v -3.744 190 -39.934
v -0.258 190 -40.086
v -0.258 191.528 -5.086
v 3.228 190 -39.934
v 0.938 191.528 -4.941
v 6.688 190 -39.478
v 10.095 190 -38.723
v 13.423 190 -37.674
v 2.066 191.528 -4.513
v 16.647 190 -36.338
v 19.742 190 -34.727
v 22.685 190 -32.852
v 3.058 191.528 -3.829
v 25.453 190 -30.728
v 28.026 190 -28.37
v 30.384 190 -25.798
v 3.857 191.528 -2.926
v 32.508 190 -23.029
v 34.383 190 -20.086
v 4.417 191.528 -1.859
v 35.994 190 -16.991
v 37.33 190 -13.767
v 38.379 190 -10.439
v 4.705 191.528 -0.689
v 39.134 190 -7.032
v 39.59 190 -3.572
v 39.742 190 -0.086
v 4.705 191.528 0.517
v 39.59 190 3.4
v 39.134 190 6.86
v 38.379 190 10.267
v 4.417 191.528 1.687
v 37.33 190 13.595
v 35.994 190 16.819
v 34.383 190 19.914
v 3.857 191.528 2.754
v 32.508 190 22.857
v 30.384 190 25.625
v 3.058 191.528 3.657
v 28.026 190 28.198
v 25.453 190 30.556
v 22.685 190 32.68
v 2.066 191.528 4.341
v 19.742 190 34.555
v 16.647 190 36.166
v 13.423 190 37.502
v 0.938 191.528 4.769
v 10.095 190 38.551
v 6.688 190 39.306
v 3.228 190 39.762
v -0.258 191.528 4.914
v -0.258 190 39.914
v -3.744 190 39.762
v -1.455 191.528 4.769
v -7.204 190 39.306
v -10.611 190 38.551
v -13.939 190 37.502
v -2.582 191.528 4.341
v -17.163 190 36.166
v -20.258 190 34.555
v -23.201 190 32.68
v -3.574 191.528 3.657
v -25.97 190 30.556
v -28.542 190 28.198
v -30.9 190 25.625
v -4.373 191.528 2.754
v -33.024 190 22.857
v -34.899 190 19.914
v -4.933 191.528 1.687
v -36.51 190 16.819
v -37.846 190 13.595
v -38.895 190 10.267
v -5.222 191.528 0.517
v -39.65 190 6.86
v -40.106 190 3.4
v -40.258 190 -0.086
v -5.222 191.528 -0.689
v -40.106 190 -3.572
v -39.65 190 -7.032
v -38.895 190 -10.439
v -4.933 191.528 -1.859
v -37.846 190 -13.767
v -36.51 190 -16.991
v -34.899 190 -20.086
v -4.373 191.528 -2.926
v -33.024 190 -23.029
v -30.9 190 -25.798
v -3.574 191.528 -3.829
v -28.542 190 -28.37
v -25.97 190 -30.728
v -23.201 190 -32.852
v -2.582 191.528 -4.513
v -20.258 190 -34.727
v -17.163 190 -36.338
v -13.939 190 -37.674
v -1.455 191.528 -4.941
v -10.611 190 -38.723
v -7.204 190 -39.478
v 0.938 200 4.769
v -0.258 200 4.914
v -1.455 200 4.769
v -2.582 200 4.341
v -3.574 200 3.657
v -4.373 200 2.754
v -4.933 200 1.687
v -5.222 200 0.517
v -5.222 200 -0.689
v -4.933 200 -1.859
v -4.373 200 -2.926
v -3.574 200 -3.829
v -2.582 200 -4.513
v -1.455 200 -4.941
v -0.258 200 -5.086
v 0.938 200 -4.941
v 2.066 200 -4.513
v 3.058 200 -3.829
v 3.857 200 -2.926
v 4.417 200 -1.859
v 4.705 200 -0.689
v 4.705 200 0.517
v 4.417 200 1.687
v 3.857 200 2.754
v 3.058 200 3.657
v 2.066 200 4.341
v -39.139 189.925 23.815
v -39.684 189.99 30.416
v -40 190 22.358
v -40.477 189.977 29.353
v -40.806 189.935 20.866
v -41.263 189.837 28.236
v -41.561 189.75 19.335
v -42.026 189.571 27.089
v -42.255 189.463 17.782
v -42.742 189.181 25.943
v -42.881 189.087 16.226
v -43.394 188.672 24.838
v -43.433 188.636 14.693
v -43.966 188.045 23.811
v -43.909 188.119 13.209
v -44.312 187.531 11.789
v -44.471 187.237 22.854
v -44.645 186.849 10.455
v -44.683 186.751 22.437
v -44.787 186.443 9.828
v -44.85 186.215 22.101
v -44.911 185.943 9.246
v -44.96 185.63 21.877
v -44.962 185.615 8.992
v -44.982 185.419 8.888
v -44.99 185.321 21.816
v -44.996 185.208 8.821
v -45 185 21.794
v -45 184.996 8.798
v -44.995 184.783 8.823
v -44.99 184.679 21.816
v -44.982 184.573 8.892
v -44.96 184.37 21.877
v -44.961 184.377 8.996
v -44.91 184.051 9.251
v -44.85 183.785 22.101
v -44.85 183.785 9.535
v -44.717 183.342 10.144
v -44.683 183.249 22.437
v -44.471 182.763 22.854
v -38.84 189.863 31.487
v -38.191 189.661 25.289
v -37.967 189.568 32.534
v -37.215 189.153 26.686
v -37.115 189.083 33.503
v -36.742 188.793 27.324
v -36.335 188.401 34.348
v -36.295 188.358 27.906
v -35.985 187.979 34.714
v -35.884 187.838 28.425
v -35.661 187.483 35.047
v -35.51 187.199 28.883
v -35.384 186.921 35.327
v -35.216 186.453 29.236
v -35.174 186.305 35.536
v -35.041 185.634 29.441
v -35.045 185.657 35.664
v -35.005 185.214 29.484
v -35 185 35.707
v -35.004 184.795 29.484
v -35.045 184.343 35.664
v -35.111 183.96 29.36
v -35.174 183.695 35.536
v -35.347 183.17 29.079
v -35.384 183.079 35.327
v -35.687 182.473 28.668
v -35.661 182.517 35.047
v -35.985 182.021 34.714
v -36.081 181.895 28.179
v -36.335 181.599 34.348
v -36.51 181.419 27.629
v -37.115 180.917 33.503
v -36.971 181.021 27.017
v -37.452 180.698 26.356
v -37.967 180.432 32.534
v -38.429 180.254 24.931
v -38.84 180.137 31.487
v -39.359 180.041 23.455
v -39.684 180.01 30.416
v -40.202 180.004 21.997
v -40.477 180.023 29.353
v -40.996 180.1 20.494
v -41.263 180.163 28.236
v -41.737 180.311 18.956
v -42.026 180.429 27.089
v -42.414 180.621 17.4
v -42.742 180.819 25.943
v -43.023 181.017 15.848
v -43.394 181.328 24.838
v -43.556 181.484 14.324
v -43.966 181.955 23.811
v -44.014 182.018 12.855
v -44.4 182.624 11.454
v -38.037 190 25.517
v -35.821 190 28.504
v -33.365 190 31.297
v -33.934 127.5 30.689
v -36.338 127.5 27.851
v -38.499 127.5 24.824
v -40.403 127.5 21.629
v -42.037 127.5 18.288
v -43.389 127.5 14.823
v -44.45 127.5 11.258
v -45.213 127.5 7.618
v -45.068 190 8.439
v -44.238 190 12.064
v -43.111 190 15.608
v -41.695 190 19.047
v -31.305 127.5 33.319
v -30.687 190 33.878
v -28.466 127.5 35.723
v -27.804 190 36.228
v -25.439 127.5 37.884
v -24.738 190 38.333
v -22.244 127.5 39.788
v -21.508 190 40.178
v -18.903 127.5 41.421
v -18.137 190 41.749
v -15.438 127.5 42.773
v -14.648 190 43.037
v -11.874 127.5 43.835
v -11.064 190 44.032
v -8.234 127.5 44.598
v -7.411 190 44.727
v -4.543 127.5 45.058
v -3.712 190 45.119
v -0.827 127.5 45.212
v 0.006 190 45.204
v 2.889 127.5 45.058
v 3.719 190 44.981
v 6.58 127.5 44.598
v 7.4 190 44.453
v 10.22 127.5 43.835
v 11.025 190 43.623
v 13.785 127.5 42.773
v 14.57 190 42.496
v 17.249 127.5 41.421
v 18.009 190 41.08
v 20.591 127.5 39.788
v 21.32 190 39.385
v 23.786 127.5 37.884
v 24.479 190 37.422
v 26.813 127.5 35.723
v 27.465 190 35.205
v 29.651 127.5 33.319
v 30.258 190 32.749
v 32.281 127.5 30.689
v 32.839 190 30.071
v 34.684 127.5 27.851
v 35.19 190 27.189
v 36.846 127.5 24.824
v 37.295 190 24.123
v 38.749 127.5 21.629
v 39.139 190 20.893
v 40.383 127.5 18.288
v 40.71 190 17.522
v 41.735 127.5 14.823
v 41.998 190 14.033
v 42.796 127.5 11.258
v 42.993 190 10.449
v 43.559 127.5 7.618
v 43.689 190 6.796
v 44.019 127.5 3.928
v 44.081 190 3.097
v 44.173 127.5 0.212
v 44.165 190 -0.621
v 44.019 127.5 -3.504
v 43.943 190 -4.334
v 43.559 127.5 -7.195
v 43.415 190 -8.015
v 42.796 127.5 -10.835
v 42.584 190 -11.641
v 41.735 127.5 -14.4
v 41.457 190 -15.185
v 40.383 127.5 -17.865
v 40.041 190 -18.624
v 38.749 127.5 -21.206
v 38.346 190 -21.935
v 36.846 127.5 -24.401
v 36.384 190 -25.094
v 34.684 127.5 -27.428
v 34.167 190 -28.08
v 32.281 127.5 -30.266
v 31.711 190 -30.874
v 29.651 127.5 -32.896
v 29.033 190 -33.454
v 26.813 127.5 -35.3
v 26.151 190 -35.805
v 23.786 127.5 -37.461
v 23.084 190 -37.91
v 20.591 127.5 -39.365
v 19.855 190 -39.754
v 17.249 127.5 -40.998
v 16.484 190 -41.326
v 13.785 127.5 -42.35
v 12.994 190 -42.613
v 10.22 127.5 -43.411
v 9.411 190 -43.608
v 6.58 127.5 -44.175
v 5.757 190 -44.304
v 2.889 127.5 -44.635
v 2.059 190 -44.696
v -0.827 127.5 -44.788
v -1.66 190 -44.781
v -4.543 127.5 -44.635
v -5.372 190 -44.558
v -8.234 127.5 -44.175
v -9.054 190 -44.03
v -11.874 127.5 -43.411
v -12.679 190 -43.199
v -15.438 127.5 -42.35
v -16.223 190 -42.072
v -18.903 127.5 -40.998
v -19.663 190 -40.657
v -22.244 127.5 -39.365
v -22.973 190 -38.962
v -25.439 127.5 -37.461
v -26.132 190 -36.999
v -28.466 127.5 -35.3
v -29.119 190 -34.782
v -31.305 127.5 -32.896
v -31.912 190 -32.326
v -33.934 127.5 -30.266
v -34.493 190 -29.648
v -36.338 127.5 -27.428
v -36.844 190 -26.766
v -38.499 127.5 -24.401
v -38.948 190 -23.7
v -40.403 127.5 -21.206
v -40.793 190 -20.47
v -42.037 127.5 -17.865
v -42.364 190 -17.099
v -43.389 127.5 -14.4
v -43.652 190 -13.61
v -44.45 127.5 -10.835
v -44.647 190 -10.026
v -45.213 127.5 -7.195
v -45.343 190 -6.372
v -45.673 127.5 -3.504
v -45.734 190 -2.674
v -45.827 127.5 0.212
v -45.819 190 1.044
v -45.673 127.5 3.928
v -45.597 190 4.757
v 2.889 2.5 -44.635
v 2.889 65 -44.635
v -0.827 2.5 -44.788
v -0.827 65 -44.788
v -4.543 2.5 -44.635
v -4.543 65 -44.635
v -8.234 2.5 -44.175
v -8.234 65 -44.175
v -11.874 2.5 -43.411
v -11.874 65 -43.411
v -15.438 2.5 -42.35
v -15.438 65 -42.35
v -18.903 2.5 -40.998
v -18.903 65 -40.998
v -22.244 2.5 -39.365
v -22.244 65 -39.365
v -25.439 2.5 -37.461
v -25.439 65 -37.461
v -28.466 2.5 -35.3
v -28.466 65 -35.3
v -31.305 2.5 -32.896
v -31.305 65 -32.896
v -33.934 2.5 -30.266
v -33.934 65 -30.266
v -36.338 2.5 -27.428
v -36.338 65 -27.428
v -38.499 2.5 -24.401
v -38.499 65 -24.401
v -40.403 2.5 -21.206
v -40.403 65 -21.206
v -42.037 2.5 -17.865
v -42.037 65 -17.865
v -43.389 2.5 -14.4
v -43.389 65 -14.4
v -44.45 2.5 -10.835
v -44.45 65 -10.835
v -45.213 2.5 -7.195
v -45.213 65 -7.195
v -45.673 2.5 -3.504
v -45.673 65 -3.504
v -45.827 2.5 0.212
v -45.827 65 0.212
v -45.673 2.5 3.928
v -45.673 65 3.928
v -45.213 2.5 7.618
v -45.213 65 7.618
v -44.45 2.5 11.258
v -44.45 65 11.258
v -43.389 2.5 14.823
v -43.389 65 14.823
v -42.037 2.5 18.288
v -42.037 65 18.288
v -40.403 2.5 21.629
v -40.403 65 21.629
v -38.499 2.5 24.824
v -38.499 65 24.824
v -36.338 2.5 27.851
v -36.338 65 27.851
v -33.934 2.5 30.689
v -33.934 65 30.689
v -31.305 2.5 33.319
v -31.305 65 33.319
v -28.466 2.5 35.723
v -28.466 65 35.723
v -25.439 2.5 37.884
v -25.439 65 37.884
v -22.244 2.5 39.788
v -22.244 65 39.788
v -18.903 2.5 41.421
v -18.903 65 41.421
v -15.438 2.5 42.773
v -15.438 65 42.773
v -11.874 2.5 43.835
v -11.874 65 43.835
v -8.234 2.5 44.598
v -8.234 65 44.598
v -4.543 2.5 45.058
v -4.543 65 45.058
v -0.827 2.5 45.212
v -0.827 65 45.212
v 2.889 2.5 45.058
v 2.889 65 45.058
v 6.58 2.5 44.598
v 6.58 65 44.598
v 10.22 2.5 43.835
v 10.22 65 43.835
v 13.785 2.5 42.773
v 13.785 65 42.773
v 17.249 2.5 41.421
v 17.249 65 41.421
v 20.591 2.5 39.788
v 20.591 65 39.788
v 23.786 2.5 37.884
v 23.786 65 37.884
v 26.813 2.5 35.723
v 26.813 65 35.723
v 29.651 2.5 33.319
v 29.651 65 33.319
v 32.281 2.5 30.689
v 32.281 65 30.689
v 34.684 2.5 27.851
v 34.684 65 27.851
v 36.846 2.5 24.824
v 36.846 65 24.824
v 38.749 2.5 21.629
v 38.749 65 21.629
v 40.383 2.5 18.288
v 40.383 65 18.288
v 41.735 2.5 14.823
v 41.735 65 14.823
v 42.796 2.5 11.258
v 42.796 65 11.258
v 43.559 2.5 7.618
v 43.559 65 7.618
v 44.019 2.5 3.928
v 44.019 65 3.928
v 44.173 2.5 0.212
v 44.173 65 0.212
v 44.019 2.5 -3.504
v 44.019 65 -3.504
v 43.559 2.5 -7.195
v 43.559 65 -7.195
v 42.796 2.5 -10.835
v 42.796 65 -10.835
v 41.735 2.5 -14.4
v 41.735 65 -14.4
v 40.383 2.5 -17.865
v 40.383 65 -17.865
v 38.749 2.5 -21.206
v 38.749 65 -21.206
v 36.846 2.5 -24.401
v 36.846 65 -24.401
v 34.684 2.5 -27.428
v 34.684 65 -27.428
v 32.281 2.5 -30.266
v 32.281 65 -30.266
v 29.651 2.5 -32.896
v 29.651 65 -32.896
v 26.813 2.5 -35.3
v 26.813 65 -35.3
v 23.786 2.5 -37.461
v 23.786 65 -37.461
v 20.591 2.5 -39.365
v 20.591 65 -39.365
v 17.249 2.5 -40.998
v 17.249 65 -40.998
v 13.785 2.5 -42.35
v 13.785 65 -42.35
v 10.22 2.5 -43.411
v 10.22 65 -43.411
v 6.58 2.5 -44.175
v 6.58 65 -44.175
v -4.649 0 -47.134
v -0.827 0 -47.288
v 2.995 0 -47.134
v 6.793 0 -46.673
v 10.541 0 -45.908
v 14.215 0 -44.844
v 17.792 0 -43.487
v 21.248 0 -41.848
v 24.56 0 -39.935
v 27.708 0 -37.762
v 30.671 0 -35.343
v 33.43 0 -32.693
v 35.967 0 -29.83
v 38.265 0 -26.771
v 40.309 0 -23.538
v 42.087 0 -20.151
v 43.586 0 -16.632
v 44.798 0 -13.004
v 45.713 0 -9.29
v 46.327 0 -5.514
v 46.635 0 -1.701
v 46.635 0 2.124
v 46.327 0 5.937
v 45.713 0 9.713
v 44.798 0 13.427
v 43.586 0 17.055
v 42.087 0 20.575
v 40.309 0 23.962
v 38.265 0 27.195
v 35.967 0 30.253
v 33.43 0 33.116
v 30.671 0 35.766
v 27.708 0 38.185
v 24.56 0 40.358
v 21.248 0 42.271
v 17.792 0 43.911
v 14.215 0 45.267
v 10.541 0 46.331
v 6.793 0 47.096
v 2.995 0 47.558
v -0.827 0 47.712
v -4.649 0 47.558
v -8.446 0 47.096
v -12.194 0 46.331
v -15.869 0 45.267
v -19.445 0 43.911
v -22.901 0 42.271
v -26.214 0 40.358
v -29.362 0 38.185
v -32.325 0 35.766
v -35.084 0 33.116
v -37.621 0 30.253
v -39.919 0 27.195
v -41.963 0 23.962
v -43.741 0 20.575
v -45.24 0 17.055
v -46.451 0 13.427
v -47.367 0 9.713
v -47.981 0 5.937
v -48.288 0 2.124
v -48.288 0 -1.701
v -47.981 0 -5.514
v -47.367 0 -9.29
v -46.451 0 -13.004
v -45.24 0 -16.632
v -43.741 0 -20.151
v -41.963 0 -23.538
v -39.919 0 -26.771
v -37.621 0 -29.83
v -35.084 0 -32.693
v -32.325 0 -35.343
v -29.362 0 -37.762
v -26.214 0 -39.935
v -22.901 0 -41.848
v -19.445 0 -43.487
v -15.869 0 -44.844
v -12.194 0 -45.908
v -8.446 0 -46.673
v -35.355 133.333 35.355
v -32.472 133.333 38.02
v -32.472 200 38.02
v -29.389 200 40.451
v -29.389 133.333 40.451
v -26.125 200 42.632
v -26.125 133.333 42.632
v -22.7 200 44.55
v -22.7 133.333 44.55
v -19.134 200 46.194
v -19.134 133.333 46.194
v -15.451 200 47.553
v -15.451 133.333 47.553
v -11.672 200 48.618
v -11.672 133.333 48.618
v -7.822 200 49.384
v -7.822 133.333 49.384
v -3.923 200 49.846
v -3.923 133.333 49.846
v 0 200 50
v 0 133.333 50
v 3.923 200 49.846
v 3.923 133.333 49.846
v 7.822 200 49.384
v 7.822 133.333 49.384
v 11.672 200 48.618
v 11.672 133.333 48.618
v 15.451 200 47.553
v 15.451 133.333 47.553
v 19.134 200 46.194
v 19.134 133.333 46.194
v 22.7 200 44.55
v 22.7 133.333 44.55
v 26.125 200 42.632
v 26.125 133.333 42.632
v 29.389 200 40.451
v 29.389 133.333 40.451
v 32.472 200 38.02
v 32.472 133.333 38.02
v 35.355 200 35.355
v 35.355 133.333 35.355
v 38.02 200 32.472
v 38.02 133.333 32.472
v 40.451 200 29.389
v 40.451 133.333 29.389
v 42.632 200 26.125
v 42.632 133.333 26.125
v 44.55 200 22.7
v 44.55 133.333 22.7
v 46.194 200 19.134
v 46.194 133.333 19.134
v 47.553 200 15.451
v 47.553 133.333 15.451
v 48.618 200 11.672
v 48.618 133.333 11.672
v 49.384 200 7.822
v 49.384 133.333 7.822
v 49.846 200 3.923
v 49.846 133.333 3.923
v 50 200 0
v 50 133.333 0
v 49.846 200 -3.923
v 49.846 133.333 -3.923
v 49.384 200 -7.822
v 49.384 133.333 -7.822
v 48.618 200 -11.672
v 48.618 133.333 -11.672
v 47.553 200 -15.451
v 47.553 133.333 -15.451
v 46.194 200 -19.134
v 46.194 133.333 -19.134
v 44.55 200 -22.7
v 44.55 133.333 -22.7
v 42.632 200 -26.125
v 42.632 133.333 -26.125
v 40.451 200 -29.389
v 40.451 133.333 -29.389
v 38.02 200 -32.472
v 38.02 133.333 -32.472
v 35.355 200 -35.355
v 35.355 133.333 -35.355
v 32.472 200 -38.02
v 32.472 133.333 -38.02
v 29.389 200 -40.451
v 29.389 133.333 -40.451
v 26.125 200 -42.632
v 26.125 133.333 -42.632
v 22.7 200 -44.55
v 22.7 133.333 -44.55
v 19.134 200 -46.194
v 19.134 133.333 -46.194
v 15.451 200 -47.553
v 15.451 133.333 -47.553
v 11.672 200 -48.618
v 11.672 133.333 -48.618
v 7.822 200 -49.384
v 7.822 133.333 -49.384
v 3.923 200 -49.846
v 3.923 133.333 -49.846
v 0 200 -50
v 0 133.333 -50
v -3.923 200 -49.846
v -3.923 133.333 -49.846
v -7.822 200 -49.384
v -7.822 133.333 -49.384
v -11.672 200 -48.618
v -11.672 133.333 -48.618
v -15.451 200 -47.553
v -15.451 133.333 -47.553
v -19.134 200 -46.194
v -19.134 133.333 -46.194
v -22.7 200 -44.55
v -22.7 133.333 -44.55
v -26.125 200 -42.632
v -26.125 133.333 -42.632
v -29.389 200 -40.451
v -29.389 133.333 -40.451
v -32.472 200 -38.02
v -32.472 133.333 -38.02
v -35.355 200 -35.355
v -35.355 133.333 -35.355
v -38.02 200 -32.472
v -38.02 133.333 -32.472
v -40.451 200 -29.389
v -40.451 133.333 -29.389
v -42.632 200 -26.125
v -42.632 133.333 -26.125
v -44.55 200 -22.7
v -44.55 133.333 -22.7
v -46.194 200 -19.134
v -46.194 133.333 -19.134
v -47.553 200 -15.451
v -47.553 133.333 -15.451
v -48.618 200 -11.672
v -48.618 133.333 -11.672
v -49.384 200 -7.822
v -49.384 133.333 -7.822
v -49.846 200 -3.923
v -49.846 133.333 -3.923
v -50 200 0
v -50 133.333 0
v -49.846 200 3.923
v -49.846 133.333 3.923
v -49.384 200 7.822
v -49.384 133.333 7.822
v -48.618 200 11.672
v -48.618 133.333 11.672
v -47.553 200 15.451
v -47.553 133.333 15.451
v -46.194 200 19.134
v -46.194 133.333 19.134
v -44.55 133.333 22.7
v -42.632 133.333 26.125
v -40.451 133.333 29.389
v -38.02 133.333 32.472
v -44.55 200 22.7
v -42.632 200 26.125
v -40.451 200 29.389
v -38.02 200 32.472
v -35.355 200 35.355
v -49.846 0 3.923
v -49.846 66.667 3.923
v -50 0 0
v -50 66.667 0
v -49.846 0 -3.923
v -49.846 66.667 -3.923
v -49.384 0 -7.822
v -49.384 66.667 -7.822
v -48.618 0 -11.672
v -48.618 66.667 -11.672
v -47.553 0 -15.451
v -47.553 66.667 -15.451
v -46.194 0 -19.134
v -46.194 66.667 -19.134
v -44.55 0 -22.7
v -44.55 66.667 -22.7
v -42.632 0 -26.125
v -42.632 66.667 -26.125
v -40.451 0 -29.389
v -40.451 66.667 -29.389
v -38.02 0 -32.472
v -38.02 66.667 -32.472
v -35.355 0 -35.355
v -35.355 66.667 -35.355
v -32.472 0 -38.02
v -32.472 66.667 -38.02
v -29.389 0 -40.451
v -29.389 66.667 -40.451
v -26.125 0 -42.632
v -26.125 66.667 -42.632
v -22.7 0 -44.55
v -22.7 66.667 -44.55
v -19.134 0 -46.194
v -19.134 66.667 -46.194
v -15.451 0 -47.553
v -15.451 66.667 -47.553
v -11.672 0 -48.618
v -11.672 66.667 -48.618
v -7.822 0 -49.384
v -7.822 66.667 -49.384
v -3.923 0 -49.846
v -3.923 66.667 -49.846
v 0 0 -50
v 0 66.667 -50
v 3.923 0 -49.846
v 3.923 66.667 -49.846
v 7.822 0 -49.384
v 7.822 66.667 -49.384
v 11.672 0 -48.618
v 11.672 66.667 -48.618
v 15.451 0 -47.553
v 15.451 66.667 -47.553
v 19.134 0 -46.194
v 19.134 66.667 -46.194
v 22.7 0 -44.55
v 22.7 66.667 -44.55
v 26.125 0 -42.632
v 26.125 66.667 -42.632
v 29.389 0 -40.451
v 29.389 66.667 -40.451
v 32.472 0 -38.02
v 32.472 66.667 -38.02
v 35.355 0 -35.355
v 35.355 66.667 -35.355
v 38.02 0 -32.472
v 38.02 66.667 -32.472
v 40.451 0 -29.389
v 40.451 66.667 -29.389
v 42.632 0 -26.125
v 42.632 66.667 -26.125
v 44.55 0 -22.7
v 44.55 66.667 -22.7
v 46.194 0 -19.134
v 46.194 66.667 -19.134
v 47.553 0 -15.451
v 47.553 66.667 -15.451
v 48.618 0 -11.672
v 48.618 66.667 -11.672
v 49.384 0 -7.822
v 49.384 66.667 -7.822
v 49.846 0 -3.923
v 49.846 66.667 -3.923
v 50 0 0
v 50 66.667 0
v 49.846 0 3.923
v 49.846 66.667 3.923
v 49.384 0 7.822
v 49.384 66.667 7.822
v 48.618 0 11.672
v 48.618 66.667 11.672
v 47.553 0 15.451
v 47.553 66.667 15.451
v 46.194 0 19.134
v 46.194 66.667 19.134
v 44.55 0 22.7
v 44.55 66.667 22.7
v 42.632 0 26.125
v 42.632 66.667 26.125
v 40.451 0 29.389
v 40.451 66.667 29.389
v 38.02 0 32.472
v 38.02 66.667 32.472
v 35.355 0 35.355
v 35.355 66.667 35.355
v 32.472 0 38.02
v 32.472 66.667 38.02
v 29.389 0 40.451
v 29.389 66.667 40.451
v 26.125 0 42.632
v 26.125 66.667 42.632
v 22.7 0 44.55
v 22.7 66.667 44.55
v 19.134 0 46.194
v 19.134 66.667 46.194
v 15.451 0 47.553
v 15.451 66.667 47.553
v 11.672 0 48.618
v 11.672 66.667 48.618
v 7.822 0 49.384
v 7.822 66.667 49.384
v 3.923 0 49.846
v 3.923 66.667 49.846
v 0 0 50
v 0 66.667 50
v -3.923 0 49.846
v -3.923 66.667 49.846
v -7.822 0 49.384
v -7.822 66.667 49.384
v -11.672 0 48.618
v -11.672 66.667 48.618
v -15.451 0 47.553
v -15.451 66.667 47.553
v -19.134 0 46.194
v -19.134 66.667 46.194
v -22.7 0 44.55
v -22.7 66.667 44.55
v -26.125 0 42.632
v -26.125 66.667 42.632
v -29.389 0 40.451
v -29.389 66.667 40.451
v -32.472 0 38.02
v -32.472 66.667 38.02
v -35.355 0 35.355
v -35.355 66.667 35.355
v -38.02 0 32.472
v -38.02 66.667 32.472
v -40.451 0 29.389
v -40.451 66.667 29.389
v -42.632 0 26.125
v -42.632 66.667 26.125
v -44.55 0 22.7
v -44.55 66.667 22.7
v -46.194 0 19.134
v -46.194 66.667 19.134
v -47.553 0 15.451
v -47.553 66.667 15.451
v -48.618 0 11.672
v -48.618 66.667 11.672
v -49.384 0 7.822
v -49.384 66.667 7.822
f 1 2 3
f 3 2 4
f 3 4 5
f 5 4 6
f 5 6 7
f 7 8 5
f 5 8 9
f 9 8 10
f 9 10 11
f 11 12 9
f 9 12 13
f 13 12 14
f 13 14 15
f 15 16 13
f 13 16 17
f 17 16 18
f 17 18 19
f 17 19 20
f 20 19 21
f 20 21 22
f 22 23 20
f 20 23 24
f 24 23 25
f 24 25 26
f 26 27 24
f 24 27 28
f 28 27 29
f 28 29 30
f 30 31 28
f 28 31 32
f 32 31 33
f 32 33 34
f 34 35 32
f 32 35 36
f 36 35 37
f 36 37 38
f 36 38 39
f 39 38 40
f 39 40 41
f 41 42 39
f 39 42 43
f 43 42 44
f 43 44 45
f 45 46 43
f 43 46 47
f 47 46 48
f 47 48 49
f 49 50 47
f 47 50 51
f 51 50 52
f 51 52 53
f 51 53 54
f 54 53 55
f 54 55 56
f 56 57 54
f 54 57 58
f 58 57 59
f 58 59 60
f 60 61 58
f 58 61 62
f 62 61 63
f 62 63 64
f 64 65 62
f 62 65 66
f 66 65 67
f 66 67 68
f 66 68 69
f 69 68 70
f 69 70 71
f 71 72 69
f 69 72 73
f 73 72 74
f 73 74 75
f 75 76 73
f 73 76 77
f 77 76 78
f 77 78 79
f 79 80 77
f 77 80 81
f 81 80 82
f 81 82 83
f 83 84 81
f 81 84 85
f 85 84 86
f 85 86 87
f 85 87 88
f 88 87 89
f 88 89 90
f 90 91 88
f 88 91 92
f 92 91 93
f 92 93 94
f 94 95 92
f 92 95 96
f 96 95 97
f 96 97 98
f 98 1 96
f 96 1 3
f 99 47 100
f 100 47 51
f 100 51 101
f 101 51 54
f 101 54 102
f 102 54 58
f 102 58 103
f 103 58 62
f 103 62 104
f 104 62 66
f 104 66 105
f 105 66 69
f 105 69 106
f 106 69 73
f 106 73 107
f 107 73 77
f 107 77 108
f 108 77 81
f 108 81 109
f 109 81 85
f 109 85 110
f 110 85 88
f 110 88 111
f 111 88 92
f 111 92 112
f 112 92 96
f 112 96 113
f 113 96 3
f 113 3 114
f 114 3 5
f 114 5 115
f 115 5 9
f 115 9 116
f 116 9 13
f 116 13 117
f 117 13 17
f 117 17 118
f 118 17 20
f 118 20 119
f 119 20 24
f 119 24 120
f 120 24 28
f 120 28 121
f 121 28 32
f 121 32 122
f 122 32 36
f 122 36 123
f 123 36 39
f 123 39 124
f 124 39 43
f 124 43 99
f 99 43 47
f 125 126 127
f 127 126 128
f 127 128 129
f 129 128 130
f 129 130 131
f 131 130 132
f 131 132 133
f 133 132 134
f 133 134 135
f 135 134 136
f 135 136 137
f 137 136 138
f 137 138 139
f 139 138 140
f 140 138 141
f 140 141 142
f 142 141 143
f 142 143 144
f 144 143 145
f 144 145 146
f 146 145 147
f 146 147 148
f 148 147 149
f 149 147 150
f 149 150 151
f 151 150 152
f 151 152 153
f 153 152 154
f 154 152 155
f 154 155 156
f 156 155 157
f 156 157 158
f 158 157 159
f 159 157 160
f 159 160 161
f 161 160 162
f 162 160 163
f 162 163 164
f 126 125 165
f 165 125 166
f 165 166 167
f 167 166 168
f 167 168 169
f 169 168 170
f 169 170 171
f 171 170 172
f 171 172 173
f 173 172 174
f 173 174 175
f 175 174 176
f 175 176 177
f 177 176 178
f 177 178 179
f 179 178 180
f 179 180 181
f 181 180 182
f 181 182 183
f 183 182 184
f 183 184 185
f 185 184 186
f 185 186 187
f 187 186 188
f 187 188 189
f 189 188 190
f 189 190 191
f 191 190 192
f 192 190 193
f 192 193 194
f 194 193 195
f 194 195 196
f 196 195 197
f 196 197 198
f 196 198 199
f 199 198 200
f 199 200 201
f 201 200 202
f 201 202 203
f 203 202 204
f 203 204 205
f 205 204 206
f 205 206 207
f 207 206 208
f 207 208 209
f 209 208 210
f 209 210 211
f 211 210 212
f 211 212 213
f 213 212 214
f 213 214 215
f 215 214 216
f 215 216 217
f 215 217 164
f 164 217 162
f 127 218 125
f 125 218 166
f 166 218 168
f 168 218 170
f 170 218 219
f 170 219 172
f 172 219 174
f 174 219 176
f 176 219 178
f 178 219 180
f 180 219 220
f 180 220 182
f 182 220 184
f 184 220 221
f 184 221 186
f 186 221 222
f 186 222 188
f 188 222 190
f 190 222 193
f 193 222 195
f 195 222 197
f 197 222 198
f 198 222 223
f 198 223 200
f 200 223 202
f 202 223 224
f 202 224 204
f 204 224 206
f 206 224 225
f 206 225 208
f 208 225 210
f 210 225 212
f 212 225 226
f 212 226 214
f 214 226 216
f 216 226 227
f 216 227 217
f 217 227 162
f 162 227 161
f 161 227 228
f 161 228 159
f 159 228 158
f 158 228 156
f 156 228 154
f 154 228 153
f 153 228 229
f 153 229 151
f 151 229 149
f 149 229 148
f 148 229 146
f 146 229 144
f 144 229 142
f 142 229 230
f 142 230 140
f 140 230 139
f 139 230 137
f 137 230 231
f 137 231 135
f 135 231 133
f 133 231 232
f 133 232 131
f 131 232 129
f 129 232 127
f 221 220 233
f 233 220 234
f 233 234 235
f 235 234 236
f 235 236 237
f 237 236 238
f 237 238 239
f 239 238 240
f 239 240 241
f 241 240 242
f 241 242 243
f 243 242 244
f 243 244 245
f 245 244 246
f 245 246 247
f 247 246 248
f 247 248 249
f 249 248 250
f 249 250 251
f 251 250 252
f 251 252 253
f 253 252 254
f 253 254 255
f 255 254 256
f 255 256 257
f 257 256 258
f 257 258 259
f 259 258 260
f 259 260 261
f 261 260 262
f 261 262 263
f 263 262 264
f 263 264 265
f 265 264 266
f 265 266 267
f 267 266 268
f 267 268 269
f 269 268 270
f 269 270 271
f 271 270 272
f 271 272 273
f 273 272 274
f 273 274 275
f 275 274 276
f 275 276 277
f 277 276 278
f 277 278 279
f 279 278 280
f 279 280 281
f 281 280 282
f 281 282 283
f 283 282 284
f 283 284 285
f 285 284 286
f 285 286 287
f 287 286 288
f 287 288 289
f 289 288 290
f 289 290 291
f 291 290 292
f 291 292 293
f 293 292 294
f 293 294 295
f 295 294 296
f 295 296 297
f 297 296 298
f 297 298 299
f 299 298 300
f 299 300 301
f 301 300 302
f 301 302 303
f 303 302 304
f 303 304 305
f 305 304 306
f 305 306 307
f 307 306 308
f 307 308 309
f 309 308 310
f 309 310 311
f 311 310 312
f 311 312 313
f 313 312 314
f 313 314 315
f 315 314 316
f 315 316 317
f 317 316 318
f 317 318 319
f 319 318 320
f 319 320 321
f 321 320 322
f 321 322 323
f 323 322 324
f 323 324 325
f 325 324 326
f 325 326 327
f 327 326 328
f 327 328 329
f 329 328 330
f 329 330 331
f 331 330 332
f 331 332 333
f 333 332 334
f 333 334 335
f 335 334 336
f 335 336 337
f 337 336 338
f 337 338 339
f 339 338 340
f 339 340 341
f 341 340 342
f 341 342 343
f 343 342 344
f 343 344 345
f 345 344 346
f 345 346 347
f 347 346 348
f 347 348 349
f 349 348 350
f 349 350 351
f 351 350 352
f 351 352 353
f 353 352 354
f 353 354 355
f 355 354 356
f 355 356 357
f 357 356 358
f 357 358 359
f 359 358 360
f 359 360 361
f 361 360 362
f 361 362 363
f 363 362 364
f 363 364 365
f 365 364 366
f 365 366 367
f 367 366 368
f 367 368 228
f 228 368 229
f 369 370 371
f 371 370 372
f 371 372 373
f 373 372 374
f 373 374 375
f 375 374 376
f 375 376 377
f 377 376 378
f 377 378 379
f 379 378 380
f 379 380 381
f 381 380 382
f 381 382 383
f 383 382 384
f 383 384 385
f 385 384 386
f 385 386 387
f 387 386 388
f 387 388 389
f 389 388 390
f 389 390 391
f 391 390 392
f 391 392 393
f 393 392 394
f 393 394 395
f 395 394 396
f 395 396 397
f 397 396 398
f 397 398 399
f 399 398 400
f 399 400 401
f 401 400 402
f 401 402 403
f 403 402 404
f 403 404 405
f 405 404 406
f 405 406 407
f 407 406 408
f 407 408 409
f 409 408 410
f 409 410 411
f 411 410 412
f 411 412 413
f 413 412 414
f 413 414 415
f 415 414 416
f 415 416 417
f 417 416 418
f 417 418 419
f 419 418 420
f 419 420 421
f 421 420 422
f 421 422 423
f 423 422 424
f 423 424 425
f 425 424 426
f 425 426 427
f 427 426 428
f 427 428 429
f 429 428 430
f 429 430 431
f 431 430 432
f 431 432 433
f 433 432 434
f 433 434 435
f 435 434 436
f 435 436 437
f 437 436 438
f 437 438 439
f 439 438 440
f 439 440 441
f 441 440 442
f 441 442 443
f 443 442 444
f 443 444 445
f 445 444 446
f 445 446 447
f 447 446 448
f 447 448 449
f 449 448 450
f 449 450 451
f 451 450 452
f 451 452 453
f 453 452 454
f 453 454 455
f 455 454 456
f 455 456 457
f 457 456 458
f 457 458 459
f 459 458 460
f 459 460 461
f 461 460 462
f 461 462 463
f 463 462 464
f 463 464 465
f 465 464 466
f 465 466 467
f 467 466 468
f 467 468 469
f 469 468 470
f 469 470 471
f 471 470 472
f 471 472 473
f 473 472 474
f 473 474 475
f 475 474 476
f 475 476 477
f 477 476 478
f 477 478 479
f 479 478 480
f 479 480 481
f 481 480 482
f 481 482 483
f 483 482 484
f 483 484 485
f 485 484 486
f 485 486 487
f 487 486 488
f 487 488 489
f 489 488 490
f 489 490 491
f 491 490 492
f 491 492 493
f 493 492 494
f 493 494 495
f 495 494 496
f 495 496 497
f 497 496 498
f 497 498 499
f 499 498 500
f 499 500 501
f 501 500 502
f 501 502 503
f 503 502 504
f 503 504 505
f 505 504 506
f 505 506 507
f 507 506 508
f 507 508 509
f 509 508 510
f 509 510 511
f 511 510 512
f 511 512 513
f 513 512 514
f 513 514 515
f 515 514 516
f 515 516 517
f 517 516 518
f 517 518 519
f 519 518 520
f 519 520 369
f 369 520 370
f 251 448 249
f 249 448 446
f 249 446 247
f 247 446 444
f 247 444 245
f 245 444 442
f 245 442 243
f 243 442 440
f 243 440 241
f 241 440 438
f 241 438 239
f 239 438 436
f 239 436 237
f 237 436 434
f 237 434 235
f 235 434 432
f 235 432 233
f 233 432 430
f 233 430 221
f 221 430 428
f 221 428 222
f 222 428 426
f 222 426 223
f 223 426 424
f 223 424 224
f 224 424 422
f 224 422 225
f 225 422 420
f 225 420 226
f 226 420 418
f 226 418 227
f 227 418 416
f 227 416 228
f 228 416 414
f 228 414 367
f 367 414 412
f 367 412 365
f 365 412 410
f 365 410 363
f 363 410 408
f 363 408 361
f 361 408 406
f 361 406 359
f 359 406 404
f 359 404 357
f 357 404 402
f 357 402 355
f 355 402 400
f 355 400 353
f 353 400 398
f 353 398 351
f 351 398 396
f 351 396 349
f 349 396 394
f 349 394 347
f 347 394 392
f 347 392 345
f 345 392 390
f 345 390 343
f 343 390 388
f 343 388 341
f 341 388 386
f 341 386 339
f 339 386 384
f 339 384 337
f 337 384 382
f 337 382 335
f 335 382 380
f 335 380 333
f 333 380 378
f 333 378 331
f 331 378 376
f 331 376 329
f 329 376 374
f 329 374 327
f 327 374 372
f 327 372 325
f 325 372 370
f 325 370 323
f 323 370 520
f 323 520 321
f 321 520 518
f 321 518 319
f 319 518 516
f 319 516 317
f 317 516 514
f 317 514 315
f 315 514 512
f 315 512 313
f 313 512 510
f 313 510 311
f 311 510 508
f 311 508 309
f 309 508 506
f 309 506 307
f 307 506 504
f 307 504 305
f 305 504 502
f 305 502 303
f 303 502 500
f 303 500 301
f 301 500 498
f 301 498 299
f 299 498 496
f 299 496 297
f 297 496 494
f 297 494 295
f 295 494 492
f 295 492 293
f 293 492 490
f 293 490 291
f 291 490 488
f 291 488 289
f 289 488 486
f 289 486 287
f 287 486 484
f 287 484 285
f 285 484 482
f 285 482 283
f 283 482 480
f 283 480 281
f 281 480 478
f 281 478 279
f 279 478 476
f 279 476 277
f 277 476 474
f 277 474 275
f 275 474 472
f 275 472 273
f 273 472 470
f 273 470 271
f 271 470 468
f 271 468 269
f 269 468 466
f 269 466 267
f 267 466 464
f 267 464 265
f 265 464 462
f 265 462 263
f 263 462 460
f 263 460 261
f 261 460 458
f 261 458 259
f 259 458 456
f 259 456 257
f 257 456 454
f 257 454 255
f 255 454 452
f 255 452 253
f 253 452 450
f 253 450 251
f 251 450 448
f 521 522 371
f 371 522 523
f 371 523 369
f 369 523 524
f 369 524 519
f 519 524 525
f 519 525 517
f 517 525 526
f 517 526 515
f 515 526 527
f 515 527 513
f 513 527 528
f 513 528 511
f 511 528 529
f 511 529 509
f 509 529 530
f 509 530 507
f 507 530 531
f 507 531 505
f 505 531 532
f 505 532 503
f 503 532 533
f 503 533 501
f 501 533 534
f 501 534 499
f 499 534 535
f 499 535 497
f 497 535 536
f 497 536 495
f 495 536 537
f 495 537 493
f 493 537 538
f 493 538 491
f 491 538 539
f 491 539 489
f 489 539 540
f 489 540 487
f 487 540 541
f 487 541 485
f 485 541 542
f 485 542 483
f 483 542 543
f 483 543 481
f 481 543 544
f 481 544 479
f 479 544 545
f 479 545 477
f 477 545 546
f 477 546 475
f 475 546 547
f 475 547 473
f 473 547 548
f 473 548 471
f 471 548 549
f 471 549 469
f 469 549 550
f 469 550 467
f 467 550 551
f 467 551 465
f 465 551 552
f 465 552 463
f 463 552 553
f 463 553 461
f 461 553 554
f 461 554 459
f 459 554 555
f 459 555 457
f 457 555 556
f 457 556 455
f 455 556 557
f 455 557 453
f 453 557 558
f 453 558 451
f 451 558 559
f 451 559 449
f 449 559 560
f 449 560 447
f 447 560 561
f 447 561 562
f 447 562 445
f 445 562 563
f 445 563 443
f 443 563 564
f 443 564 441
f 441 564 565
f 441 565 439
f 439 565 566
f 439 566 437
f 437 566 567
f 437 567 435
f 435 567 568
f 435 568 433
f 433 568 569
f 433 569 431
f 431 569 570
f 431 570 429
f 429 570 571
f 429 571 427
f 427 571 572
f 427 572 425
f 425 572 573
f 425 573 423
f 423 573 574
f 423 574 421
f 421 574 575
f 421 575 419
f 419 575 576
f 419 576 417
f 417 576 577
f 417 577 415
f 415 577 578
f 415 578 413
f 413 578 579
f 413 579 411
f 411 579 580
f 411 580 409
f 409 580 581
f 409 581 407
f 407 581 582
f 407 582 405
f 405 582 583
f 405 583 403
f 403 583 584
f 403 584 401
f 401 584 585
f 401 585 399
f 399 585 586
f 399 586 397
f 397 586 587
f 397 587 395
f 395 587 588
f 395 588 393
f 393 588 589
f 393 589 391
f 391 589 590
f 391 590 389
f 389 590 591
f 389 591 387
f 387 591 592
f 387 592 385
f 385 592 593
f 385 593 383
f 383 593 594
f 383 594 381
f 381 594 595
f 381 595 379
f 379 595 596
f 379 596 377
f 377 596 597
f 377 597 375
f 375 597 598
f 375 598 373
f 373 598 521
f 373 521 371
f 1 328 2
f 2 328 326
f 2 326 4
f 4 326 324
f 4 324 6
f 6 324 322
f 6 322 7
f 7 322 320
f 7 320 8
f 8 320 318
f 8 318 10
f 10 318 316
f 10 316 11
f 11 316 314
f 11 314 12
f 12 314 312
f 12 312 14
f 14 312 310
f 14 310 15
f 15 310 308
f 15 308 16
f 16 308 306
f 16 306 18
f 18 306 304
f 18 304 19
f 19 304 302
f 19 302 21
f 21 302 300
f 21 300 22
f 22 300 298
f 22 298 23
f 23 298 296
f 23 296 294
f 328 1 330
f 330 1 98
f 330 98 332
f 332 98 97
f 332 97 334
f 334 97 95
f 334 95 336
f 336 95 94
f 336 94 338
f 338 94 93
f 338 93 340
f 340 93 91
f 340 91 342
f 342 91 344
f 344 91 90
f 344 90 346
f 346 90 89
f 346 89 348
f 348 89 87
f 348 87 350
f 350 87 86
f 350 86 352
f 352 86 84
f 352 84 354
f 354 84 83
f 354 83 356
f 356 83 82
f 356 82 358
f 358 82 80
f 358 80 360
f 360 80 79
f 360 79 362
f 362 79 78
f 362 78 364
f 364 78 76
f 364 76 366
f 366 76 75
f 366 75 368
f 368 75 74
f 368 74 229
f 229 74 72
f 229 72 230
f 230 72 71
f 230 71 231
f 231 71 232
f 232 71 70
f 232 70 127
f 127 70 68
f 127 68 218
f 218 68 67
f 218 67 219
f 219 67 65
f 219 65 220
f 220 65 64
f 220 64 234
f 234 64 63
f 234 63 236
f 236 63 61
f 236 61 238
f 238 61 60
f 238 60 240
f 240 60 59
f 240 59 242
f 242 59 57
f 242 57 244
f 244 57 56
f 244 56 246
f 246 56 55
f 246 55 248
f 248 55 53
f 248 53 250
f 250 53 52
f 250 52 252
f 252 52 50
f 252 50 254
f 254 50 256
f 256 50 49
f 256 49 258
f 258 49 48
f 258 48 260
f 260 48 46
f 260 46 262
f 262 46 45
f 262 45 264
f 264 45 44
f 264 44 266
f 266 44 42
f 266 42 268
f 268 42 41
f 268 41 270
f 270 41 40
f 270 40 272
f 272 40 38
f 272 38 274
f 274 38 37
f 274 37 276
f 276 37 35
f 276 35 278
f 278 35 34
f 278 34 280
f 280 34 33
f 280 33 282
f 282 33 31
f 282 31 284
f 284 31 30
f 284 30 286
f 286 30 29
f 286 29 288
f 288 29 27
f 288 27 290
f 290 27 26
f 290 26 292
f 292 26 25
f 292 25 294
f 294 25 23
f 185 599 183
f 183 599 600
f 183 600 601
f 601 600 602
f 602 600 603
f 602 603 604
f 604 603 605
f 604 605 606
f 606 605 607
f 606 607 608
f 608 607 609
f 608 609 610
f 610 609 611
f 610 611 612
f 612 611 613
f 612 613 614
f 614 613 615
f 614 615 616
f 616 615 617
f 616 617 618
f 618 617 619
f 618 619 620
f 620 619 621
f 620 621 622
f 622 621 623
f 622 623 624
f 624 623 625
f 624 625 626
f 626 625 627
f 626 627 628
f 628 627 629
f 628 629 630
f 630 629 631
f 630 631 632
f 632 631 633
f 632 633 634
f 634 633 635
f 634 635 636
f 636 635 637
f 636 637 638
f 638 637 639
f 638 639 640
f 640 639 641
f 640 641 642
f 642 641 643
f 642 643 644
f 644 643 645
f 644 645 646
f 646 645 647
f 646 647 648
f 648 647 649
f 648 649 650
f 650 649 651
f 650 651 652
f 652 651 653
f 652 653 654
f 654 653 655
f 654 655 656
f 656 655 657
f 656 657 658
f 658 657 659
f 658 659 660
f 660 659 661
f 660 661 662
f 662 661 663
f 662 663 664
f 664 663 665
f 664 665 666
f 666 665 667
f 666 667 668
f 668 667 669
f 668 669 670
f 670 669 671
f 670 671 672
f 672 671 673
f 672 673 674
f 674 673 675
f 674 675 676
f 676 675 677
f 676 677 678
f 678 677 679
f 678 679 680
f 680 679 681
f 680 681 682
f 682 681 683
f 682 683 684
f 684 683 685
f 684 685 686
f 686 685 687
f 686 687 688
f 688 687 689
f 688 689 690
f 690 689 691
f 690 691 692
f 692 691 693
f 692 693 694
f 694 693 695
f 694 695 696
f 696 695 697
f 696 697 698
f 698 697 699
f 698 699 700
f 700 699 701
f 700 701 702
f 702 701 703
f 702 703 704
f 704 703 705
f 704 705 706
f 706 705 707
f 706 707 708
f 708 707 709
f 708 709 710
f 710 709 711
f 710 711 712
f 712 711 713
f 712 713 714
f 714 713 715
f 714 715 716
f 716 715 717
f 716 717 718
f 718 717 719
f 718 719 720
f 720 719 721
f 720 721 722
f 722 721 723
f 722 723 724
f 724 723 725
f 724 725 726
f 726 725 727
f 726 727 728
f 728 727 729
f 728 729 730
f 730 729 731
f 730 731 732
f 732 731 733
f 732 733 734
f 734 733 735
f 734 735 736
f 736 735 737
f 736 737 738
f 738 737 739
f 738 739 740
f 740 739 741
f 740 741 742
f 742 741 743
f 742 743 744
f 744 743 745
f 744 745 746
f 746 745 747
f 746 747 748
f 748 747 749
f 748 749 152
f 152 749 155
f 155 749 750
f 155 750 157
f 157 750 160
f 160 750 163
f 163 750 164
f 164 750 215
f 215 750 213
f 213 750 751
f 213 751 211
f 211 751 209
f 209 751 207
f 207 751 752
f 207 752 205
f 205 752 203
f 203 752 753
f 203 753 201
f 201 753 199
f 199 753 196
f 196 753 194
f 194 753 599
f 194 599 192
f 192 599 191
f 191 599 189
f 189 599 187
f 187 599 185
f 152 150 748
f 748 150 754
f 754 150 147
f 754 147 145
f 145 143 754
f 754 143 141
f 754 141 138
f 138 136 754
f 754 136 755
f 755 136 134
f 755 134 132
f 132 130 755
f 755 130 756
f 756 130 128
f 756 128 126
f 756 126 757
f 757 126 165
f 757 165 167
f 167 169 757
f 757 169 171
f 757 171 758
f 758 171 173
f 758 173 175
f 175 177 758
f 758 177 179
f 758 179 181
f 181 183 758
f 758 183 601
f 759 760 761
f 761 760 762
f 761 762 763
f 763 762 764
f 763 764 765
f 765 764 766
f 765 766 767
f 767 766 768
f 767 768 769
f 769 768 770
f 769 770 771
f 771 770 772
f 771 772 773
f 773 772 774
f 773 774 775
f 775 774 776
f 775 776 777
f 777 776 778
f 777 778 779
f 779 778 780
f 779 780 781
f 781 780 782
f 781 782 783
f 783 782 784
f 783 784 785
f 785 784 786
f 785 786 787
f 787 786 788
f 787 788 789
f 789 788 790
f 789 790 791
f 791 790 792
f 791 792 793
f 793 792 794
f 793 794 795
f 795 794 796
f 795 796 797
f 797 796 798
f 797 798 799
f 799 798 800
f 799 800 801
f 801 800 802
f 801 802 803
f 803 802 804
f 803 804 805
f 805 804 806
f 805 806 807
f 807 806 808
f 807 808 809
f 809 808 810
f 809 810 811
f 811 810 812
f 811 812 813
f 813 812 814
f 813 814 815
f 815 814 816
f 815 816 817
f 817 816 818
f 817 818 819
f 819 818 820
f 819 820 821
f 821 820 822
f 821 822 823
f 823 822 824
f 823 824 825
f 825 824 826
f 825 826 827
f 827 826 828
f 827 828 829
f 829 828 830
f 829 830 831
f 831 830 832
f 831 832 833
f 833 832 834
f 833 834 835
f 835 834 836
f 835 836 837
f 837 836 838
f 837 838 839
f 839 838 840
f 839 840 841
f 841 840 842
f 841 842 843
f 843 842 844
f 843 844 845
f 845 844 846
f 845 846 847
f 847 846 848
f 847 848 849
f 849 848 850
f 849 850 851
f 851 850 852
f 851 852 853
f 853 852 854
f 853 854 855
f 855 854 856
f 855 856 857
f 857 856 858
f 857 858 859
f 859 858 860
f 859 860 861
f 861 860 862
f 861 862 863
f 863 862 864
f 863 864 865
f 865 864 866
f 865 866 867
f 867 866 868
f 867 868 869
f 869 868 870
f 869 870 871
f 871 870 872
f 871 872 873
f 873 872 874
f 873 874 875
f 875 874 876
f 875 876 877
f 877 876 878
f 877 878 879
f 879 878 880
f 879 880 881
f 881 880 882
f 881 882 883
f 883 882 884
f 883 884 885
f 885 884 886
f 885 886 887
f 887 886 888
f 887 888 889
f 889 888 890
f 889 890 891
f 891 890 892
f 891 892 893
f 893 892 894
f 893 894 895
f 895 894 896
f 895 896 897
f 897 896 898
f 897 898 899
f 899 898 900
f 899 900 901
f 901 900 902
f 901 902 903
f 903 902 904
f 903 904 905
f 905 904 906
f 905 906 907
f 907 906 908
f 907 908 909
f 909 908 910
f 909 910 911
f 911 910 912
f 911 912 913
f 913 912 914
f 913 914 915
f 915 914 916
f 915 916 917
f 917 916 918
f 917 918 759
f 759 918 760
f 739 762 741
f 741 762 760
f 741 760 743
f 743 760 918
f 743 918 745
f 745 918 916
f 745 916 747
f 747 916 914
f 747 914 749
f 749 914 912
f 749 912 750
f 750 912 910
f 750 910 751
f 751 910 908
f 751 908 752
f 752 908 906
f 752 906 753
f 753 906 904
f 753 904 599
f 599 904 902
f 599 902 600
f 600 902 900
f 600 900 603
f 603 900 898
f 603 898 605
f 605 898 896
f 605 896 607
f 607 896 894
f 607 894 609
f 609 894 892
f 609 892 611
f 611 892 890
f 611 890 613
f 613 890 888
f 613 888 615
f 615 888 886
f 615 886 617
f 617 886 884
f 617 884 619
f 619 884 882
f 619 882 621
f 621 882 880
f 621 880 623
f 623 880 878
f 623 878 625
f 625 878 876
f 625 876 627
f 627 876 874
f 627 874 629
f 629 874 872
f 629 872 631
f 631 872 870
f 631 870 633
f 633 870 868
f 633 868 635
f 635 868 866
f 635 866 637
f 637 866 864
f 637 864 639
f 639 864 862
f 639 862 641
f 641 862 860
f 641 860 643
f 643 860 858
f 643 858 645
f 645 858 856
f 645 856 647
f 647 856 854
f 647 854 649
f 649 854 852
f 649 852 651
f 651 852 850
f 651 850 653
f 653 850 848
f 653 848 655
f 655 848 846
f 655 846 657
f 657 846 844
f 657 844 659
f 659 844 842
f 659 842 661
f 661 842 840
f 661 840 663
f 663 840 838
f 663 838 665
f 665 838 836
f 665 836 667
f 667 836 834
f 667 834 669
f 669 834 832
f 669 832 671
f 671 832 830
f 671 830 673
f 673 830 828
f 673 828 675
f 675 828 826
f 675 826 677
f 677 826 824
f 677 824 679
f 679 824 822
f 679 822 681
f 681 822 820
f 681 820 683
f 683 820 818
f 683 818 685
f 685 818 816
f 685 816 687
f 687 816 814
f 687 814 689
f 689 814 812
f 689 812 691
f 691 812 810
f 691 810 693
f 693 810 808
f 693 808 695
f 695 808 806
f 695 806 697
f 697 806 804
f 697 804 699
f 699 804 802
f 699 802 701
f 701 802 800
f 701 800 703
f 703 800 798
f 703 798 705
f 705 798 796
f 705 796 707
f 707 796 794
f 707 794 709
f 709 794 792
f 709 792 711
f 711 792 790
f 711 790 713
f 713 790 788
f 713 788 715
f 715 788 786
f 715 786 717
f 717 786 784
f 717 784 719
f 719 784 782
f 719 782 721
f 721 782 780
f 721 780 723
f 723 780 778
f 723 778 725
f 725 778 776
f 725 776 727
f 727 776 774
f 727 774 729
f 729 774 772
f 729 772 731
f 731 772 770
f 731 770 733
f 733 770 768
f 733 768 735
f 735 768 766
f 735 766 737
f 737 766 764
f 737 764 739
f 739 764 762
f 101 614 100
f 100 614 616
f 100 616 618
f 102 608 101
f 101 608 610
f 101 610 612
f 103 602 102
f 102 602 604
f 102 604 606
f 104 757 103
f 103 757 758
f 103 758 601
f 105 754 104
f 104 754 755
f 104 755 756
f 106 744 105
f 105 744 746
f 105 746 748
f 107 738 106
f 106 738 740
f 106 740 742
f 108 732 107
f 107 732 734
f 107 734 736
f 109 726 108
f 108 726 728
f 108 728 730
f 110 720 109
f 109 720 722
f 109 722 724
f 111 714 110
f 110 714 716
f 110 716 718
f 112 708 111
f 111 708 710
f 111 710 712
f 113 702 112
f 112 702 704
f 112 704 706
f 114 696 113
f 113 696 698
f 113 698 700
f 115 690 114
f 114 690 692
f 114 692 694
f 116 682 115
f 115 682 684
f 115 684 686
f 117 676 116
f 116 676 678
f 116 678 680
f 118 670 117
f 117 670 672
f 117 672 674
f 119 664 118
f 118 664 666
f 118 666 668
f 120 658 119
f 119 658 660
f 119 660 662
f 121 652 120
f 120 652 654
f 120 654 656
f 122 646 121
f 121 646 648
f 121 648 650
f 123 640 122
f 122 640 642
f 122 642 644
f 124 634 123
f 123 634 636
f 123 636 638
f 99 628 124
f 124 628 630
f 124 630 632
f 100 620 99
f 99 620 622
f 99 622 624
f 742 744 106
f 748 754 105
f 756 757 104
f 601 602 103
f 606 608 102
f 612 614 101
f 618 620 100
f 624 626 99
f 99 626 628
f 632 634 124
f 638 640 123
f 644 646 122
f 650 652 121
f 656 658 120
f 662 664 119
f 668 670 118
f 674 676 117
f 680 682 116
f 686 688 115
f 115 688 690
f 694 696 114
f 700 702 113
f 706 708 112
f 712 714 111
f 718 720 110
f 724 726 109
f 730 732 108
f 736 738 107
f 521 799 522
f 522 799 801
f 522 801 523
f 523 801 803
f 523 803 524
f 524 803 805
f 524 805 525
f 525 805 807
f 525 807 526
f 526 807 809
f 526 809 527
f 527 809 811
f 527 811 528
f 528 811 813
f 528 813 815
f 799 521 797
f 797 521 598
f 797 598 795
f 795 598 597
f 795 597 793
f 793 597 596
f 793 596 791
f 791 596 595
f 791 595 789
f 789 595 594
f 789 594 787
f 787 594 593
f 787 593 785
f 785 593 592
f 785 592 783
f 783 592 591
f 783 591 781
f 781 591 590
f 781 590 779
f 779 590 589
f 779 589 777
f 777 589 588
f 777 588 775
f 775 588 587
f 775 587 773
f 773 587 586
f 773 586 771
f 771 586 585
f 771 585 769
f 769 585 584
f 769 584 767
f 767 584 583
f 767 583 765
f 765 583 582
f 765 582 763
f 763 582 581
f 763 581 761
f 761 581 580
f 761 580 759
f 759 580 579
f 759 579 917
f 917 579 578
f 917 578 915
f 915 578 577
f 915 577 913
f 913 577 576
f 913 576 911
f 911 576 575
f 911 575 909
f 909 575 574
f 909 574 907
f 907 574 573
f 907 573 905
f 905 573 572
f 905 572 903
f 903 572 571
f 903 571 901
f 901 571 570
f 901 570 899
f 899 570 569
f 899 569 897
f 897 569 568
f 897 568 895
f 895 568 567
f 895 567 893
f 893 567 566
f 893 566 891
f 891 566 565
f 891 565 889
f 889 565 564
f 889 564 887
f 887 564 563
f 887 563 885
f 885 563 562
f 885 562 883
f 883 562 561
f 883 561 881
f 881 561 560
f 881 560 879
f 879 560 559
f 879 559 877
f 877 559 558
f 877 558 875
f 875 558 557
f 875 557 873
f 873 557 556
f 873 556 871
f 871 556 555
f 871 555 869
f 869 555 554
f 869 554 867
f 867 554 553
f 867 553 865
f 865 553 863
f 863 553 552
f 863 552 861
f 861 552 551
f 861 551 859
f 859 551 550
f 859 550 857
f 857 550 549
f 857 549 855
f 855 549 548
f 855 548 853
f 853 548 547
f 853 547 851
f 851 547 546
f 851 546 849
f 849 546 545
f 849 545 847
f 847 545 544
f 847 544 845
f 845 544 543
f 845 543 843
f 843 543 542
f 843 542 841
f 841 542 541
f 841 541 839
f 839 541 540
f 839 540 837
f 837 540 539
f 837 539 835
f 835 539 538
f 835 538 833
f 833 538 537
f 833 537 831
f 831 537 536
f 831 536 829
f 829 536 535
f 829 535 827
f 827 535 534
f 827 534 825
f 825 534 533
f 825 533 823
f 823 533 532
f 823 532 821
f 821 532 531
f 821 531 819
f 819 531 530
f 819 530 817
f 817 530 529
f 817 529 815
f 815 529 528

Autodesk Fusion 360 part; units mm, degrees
sketch "Sketch1" plane through (0, 0, 0) normal (0, 1, 0) x (1, 0, 0)
  circle A0 centre (0, 0) radius 50
  dimension "d1" = 100
extrude "Extrude1" add sketch "Sketch1" along normal blind 200
hole "Hole1" at (-0.8268, 0, 0.2116) direction (0, 1, 0) diameter 90 depth 190 tip angle 180 countersink diameter 95 countersink angle 90
sketch "Sketch2" plane through (0, 0, 0) normal (0, 0, 1) x (1, 0, 0)
  circle A0 centre (-40, 185) radius 5
  dimension "d9" = 10
extrude "Extrude2" cut sketch "Sketch2" along normal blind 60
hole "Hole2" at (-0.2581, 190, -0.086) direction (0, 1, 0) diameter 10 depth 4411.663 tip angle 180 countersink diameter 80 countersink angle 175
